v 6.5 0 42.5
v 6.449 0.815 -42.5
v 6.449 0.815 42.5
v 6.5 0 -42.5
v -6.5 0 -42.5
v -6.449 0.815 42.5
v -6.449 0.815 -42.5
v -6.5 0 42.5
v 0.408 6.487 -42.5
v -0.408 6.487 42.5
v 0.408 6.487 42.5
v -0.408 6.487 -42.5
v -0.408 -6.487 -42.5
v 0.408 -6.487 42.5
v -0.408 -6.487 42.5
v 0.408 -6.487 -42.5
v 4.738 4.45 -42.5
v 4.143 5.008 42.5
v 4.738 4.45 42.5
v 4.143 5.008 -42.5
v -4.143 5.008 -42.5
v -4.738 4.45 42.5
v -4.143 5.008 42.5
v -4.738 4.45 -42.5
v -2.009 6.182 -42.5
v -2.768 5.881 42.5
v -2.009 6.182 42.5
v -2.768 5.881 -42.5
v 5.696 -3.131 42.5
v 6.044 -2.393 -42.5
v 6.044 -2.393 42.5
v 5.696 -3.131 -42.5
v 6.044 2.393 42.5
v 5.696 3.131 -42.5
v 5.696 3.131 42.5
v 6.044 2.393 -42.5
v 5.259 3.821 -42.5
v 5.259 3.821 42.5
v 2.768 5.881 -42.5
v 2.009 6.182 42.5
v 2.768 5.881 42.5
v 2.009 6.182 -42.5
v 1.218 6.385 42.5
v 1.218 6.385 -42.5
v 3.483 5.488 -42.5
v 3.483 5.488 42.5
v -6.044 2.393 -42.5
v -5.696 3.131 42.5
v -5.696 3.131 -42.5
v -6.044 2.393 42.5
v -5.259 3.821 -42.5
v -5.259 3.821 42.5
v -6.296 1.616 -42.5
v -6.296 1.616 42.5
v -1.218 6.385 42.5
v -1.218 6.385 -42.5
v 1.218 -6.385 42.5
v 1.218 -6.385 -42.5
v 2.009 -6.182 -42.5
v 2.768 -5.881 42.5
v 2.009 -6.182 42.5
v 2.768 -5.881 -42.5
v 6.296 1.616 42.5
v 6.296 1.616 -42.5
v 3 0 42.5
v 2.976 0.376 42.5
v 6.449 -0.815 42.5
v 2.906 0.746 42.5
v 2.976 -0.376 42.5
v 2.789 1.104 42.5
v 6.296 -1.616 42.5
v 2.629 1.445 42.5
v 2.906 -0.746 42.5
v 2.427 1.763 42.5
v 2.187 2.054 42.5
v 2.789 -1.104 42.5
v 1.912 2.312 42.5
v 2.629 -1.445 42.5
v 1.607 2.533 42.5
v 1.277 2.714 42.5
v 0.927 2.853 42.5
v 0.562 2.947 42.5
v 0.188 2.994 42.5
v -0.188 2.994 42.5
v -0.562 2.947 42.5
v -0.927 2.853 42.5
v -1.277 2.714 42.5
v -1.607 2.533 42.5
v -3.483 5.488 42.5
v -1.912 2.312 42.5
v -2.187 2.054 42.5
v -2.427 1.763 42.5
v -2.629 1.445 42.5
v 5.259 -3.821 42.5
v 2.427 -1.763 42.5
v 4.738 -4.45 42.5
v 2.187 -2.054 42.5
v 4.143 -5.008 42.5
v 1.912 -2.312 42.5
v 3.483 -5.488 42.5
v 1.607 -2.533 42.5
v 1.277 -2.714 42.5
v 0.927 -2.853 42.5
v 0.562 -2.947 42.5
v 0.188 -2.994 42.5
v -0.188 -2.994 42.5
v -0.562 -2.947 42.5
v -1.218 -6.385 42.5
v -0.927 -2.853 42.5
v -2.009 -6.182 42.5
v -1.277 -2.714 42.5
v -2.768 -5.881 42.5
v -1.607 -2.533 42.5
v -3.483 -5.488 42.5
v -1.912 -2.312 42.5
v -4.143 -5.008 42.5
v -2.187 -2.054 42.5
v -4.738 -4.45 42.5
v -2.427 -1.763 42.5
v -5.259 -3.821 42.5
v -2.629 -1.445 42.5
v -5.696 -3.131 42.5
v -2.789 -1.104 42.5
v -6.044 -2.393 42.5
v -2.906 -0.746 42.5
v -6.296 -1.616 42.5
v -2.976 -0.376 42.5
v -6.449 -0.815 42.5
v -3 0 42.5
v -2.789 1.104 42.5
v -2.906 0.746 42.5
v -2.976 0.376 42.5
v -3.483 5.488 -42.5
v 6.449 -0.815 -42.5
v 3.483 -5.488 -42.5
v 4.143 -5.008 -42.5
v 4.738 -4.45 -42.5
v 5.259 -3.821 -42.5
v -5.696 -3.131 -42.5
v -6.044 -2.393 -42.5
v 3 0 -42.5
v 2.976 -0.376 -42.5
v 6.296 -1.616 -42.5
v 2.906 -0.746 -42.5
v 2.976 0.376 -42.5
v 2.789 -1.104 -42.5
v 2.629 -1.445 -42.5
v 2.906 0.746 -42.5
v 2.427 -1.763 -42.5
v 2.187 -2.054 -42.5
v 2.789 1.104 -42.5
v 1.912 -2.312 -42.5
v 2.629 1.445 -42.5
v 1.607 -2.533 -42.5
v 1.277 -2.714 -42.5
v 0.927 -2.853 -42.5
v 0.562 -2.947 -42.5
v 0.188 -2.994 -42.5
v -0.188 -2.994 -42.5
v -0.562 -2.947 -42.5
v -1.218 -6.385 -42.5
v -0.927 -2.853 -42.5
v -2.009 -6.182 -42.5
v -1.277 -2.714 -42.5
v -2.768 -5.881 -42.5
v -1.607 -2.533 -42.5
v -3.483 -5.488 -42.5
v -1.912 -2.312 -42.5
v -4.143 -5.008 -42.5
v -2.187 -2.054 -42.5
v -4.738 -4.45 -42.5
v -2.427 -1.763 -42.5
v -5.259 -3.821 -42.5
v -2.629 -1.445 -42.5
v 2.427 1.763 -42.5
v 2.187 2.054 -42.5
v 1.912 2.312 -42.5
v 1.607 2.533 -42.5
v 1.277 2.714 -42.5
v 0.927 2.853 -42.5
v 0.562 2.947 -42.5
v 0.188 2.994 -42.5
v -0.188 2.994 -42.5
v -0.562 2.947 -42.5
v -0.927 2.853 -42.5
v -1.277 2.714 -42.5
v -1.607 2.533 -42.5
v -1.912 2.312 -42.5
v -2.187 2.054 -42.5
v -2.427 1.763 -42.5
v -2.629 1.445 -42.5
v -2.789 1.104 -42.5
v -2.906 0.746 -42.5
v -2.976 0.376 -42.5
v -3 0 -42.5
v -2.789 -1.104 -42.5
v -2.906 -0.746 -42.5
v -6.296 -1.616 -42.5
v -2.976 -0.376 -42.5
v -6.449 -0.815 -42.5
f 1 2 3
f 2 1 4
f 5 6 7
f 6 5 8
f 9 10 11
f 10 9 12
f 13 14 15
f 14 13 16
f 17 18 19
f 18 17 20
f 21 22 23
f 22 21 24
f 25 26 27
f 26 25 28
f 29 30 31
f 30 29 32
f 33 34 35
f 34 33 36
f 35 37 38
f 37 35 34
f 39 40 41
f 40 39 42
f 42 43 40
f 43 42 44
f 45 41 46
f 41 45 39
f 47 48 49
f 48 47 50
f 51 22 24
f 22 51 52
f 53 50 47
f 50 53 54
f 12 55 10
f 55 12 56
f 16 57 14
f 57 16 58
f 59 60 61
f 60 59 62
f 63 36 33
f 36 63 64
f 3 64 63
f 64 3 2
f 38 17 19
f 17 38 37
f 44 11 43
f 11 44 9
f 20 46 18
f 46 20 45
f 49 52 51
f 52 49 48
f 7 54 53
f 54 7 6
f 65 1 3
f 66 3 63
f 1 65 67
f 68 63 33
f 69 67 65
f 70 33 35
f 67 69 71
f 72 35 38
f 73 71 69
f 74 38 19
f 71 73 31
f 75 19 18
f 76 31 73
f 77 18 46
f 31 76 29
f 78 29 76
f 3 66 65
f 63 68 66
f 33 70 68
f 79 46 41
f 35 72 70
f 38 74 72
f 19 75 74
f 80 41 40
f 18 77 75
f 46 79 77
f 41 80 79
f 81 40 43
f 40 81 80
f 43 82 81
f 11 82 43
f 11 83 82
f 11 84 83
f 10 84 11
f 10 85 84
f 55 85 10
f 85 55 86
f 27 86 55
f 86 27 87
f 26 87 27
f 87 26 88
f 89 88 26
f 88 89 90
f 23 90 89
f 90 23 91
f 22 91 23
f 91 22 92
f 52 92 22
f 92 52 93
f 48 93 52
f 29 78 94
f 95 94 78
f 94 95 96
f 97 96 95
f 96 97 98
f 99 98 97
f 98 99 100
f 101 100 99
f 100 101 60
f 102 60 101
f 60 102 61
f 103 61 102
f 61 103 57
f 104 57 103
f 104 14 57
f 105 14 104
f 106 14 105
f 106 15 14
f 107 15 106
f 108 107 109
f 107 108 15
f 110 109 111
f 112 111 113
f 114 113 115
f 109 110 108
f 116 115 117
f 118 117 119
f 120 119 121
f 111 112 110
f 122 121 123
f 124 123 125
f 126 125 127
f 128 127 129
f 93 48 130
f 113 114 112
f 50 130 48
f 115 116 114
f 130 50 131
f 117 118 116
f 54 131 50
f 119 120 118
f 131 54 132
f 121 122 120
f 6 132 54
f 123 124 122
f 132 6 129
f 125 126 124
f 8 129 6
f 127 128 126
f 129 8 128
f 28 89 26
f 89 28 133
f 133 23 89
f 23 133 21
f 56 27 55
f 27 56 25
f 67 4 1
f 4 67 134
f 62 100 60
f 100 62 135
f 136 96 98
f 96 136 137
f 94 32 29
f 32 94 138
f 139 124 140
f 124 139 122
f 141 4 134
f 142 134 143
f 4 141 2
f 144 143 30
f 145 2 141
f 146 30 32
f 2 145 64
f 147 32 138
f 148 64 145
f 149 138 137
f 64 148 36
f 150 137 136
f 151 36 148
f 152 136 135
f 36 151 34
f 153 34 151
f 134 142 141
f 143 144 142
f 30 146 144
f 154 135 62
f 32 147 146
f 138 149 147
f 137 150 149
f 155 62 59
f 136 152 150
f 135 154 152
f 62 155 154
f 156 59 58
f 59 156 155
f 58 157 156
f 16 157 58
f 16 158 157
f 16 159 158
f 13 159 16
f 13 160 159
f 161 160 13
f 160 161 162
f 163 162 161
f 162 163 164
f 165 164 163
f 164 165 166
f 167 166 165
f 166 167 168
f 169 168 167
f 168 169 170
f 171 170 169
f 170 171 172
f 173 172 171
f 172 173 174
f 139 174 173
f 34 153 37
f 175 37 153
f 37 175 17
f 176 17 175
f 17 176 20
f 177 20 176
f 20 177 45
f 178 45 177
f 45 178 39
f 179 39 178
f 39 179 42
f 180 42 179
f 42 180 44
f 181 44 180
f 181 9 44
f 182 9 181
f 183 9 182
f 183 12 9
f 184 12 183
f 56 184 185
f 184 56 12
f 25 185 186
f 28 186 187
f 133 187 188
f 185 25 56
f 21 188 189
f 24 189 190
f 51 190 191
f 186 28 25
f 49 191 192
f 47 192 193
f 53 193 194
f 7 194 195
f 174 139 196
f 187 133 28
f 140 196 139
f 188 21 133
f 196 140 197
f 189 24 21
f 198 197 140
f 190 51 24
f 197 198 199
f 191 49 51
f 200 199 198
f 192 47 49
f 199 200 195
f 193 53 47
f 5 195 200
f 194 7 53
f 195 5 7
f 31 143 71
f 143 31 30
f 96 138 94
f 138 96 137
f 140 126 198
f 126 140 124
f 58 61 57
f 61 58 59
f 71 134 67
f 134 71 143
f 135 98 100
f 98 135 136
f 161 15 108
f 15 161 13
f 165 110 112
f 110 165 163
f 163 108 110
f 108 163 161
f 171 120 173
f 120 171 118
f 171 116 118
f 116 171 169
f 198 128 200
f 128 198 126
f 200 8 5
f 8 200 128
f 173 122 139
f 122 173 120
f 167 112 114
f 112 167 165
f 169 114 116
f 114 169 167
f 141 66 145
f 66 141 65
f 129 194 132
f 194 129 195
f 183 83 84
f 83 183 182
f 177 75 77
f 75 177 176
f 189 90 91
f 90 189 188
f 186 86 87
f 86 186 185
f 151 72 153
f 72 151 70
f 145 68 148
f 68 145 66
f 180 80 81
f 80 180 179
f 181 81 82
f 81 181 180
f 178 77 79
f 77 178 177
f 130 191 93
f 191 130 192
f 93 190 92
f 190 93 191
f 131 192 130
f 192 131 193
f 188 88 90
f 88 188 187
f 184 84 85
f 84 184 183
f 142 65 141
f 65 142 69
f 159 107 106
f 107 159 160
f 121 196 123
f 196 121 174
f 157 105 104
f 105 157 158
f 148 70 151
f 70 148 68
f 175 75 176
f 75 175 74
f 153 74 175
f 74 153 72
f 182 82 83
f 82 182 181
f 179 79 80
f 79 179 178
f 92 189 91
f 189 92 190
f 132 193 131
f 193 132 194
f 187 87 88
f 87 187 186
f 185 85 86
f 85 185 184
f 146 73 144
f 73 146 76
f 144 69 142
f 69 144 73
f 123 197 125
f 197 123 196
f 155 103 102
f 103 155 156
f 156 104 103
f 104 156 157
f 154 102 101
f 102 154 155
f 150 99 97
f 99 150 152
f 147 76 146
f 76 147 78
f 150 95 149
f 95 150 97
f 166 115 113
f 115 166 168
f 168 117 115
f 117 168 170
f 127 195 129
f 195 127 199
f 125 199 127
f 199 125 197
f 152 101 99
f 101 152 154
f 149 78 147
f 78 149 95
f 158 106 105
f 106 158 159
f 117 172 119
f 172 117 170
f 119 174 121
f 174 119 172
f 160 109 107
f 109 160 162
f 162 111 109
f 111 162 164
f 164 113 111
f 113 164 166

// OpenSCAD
$fn = 50;


difference() {
	union() {
		translate(v = [0, 0, -42.5000000000]) {
			cylinder(h = 85, r = 6.5000000000);
		}
	}
	union() {
		translate(v = [0, 0, -100.0000000000]) {
			cylinder(h = 200, r = 3);
		}
	}
}
